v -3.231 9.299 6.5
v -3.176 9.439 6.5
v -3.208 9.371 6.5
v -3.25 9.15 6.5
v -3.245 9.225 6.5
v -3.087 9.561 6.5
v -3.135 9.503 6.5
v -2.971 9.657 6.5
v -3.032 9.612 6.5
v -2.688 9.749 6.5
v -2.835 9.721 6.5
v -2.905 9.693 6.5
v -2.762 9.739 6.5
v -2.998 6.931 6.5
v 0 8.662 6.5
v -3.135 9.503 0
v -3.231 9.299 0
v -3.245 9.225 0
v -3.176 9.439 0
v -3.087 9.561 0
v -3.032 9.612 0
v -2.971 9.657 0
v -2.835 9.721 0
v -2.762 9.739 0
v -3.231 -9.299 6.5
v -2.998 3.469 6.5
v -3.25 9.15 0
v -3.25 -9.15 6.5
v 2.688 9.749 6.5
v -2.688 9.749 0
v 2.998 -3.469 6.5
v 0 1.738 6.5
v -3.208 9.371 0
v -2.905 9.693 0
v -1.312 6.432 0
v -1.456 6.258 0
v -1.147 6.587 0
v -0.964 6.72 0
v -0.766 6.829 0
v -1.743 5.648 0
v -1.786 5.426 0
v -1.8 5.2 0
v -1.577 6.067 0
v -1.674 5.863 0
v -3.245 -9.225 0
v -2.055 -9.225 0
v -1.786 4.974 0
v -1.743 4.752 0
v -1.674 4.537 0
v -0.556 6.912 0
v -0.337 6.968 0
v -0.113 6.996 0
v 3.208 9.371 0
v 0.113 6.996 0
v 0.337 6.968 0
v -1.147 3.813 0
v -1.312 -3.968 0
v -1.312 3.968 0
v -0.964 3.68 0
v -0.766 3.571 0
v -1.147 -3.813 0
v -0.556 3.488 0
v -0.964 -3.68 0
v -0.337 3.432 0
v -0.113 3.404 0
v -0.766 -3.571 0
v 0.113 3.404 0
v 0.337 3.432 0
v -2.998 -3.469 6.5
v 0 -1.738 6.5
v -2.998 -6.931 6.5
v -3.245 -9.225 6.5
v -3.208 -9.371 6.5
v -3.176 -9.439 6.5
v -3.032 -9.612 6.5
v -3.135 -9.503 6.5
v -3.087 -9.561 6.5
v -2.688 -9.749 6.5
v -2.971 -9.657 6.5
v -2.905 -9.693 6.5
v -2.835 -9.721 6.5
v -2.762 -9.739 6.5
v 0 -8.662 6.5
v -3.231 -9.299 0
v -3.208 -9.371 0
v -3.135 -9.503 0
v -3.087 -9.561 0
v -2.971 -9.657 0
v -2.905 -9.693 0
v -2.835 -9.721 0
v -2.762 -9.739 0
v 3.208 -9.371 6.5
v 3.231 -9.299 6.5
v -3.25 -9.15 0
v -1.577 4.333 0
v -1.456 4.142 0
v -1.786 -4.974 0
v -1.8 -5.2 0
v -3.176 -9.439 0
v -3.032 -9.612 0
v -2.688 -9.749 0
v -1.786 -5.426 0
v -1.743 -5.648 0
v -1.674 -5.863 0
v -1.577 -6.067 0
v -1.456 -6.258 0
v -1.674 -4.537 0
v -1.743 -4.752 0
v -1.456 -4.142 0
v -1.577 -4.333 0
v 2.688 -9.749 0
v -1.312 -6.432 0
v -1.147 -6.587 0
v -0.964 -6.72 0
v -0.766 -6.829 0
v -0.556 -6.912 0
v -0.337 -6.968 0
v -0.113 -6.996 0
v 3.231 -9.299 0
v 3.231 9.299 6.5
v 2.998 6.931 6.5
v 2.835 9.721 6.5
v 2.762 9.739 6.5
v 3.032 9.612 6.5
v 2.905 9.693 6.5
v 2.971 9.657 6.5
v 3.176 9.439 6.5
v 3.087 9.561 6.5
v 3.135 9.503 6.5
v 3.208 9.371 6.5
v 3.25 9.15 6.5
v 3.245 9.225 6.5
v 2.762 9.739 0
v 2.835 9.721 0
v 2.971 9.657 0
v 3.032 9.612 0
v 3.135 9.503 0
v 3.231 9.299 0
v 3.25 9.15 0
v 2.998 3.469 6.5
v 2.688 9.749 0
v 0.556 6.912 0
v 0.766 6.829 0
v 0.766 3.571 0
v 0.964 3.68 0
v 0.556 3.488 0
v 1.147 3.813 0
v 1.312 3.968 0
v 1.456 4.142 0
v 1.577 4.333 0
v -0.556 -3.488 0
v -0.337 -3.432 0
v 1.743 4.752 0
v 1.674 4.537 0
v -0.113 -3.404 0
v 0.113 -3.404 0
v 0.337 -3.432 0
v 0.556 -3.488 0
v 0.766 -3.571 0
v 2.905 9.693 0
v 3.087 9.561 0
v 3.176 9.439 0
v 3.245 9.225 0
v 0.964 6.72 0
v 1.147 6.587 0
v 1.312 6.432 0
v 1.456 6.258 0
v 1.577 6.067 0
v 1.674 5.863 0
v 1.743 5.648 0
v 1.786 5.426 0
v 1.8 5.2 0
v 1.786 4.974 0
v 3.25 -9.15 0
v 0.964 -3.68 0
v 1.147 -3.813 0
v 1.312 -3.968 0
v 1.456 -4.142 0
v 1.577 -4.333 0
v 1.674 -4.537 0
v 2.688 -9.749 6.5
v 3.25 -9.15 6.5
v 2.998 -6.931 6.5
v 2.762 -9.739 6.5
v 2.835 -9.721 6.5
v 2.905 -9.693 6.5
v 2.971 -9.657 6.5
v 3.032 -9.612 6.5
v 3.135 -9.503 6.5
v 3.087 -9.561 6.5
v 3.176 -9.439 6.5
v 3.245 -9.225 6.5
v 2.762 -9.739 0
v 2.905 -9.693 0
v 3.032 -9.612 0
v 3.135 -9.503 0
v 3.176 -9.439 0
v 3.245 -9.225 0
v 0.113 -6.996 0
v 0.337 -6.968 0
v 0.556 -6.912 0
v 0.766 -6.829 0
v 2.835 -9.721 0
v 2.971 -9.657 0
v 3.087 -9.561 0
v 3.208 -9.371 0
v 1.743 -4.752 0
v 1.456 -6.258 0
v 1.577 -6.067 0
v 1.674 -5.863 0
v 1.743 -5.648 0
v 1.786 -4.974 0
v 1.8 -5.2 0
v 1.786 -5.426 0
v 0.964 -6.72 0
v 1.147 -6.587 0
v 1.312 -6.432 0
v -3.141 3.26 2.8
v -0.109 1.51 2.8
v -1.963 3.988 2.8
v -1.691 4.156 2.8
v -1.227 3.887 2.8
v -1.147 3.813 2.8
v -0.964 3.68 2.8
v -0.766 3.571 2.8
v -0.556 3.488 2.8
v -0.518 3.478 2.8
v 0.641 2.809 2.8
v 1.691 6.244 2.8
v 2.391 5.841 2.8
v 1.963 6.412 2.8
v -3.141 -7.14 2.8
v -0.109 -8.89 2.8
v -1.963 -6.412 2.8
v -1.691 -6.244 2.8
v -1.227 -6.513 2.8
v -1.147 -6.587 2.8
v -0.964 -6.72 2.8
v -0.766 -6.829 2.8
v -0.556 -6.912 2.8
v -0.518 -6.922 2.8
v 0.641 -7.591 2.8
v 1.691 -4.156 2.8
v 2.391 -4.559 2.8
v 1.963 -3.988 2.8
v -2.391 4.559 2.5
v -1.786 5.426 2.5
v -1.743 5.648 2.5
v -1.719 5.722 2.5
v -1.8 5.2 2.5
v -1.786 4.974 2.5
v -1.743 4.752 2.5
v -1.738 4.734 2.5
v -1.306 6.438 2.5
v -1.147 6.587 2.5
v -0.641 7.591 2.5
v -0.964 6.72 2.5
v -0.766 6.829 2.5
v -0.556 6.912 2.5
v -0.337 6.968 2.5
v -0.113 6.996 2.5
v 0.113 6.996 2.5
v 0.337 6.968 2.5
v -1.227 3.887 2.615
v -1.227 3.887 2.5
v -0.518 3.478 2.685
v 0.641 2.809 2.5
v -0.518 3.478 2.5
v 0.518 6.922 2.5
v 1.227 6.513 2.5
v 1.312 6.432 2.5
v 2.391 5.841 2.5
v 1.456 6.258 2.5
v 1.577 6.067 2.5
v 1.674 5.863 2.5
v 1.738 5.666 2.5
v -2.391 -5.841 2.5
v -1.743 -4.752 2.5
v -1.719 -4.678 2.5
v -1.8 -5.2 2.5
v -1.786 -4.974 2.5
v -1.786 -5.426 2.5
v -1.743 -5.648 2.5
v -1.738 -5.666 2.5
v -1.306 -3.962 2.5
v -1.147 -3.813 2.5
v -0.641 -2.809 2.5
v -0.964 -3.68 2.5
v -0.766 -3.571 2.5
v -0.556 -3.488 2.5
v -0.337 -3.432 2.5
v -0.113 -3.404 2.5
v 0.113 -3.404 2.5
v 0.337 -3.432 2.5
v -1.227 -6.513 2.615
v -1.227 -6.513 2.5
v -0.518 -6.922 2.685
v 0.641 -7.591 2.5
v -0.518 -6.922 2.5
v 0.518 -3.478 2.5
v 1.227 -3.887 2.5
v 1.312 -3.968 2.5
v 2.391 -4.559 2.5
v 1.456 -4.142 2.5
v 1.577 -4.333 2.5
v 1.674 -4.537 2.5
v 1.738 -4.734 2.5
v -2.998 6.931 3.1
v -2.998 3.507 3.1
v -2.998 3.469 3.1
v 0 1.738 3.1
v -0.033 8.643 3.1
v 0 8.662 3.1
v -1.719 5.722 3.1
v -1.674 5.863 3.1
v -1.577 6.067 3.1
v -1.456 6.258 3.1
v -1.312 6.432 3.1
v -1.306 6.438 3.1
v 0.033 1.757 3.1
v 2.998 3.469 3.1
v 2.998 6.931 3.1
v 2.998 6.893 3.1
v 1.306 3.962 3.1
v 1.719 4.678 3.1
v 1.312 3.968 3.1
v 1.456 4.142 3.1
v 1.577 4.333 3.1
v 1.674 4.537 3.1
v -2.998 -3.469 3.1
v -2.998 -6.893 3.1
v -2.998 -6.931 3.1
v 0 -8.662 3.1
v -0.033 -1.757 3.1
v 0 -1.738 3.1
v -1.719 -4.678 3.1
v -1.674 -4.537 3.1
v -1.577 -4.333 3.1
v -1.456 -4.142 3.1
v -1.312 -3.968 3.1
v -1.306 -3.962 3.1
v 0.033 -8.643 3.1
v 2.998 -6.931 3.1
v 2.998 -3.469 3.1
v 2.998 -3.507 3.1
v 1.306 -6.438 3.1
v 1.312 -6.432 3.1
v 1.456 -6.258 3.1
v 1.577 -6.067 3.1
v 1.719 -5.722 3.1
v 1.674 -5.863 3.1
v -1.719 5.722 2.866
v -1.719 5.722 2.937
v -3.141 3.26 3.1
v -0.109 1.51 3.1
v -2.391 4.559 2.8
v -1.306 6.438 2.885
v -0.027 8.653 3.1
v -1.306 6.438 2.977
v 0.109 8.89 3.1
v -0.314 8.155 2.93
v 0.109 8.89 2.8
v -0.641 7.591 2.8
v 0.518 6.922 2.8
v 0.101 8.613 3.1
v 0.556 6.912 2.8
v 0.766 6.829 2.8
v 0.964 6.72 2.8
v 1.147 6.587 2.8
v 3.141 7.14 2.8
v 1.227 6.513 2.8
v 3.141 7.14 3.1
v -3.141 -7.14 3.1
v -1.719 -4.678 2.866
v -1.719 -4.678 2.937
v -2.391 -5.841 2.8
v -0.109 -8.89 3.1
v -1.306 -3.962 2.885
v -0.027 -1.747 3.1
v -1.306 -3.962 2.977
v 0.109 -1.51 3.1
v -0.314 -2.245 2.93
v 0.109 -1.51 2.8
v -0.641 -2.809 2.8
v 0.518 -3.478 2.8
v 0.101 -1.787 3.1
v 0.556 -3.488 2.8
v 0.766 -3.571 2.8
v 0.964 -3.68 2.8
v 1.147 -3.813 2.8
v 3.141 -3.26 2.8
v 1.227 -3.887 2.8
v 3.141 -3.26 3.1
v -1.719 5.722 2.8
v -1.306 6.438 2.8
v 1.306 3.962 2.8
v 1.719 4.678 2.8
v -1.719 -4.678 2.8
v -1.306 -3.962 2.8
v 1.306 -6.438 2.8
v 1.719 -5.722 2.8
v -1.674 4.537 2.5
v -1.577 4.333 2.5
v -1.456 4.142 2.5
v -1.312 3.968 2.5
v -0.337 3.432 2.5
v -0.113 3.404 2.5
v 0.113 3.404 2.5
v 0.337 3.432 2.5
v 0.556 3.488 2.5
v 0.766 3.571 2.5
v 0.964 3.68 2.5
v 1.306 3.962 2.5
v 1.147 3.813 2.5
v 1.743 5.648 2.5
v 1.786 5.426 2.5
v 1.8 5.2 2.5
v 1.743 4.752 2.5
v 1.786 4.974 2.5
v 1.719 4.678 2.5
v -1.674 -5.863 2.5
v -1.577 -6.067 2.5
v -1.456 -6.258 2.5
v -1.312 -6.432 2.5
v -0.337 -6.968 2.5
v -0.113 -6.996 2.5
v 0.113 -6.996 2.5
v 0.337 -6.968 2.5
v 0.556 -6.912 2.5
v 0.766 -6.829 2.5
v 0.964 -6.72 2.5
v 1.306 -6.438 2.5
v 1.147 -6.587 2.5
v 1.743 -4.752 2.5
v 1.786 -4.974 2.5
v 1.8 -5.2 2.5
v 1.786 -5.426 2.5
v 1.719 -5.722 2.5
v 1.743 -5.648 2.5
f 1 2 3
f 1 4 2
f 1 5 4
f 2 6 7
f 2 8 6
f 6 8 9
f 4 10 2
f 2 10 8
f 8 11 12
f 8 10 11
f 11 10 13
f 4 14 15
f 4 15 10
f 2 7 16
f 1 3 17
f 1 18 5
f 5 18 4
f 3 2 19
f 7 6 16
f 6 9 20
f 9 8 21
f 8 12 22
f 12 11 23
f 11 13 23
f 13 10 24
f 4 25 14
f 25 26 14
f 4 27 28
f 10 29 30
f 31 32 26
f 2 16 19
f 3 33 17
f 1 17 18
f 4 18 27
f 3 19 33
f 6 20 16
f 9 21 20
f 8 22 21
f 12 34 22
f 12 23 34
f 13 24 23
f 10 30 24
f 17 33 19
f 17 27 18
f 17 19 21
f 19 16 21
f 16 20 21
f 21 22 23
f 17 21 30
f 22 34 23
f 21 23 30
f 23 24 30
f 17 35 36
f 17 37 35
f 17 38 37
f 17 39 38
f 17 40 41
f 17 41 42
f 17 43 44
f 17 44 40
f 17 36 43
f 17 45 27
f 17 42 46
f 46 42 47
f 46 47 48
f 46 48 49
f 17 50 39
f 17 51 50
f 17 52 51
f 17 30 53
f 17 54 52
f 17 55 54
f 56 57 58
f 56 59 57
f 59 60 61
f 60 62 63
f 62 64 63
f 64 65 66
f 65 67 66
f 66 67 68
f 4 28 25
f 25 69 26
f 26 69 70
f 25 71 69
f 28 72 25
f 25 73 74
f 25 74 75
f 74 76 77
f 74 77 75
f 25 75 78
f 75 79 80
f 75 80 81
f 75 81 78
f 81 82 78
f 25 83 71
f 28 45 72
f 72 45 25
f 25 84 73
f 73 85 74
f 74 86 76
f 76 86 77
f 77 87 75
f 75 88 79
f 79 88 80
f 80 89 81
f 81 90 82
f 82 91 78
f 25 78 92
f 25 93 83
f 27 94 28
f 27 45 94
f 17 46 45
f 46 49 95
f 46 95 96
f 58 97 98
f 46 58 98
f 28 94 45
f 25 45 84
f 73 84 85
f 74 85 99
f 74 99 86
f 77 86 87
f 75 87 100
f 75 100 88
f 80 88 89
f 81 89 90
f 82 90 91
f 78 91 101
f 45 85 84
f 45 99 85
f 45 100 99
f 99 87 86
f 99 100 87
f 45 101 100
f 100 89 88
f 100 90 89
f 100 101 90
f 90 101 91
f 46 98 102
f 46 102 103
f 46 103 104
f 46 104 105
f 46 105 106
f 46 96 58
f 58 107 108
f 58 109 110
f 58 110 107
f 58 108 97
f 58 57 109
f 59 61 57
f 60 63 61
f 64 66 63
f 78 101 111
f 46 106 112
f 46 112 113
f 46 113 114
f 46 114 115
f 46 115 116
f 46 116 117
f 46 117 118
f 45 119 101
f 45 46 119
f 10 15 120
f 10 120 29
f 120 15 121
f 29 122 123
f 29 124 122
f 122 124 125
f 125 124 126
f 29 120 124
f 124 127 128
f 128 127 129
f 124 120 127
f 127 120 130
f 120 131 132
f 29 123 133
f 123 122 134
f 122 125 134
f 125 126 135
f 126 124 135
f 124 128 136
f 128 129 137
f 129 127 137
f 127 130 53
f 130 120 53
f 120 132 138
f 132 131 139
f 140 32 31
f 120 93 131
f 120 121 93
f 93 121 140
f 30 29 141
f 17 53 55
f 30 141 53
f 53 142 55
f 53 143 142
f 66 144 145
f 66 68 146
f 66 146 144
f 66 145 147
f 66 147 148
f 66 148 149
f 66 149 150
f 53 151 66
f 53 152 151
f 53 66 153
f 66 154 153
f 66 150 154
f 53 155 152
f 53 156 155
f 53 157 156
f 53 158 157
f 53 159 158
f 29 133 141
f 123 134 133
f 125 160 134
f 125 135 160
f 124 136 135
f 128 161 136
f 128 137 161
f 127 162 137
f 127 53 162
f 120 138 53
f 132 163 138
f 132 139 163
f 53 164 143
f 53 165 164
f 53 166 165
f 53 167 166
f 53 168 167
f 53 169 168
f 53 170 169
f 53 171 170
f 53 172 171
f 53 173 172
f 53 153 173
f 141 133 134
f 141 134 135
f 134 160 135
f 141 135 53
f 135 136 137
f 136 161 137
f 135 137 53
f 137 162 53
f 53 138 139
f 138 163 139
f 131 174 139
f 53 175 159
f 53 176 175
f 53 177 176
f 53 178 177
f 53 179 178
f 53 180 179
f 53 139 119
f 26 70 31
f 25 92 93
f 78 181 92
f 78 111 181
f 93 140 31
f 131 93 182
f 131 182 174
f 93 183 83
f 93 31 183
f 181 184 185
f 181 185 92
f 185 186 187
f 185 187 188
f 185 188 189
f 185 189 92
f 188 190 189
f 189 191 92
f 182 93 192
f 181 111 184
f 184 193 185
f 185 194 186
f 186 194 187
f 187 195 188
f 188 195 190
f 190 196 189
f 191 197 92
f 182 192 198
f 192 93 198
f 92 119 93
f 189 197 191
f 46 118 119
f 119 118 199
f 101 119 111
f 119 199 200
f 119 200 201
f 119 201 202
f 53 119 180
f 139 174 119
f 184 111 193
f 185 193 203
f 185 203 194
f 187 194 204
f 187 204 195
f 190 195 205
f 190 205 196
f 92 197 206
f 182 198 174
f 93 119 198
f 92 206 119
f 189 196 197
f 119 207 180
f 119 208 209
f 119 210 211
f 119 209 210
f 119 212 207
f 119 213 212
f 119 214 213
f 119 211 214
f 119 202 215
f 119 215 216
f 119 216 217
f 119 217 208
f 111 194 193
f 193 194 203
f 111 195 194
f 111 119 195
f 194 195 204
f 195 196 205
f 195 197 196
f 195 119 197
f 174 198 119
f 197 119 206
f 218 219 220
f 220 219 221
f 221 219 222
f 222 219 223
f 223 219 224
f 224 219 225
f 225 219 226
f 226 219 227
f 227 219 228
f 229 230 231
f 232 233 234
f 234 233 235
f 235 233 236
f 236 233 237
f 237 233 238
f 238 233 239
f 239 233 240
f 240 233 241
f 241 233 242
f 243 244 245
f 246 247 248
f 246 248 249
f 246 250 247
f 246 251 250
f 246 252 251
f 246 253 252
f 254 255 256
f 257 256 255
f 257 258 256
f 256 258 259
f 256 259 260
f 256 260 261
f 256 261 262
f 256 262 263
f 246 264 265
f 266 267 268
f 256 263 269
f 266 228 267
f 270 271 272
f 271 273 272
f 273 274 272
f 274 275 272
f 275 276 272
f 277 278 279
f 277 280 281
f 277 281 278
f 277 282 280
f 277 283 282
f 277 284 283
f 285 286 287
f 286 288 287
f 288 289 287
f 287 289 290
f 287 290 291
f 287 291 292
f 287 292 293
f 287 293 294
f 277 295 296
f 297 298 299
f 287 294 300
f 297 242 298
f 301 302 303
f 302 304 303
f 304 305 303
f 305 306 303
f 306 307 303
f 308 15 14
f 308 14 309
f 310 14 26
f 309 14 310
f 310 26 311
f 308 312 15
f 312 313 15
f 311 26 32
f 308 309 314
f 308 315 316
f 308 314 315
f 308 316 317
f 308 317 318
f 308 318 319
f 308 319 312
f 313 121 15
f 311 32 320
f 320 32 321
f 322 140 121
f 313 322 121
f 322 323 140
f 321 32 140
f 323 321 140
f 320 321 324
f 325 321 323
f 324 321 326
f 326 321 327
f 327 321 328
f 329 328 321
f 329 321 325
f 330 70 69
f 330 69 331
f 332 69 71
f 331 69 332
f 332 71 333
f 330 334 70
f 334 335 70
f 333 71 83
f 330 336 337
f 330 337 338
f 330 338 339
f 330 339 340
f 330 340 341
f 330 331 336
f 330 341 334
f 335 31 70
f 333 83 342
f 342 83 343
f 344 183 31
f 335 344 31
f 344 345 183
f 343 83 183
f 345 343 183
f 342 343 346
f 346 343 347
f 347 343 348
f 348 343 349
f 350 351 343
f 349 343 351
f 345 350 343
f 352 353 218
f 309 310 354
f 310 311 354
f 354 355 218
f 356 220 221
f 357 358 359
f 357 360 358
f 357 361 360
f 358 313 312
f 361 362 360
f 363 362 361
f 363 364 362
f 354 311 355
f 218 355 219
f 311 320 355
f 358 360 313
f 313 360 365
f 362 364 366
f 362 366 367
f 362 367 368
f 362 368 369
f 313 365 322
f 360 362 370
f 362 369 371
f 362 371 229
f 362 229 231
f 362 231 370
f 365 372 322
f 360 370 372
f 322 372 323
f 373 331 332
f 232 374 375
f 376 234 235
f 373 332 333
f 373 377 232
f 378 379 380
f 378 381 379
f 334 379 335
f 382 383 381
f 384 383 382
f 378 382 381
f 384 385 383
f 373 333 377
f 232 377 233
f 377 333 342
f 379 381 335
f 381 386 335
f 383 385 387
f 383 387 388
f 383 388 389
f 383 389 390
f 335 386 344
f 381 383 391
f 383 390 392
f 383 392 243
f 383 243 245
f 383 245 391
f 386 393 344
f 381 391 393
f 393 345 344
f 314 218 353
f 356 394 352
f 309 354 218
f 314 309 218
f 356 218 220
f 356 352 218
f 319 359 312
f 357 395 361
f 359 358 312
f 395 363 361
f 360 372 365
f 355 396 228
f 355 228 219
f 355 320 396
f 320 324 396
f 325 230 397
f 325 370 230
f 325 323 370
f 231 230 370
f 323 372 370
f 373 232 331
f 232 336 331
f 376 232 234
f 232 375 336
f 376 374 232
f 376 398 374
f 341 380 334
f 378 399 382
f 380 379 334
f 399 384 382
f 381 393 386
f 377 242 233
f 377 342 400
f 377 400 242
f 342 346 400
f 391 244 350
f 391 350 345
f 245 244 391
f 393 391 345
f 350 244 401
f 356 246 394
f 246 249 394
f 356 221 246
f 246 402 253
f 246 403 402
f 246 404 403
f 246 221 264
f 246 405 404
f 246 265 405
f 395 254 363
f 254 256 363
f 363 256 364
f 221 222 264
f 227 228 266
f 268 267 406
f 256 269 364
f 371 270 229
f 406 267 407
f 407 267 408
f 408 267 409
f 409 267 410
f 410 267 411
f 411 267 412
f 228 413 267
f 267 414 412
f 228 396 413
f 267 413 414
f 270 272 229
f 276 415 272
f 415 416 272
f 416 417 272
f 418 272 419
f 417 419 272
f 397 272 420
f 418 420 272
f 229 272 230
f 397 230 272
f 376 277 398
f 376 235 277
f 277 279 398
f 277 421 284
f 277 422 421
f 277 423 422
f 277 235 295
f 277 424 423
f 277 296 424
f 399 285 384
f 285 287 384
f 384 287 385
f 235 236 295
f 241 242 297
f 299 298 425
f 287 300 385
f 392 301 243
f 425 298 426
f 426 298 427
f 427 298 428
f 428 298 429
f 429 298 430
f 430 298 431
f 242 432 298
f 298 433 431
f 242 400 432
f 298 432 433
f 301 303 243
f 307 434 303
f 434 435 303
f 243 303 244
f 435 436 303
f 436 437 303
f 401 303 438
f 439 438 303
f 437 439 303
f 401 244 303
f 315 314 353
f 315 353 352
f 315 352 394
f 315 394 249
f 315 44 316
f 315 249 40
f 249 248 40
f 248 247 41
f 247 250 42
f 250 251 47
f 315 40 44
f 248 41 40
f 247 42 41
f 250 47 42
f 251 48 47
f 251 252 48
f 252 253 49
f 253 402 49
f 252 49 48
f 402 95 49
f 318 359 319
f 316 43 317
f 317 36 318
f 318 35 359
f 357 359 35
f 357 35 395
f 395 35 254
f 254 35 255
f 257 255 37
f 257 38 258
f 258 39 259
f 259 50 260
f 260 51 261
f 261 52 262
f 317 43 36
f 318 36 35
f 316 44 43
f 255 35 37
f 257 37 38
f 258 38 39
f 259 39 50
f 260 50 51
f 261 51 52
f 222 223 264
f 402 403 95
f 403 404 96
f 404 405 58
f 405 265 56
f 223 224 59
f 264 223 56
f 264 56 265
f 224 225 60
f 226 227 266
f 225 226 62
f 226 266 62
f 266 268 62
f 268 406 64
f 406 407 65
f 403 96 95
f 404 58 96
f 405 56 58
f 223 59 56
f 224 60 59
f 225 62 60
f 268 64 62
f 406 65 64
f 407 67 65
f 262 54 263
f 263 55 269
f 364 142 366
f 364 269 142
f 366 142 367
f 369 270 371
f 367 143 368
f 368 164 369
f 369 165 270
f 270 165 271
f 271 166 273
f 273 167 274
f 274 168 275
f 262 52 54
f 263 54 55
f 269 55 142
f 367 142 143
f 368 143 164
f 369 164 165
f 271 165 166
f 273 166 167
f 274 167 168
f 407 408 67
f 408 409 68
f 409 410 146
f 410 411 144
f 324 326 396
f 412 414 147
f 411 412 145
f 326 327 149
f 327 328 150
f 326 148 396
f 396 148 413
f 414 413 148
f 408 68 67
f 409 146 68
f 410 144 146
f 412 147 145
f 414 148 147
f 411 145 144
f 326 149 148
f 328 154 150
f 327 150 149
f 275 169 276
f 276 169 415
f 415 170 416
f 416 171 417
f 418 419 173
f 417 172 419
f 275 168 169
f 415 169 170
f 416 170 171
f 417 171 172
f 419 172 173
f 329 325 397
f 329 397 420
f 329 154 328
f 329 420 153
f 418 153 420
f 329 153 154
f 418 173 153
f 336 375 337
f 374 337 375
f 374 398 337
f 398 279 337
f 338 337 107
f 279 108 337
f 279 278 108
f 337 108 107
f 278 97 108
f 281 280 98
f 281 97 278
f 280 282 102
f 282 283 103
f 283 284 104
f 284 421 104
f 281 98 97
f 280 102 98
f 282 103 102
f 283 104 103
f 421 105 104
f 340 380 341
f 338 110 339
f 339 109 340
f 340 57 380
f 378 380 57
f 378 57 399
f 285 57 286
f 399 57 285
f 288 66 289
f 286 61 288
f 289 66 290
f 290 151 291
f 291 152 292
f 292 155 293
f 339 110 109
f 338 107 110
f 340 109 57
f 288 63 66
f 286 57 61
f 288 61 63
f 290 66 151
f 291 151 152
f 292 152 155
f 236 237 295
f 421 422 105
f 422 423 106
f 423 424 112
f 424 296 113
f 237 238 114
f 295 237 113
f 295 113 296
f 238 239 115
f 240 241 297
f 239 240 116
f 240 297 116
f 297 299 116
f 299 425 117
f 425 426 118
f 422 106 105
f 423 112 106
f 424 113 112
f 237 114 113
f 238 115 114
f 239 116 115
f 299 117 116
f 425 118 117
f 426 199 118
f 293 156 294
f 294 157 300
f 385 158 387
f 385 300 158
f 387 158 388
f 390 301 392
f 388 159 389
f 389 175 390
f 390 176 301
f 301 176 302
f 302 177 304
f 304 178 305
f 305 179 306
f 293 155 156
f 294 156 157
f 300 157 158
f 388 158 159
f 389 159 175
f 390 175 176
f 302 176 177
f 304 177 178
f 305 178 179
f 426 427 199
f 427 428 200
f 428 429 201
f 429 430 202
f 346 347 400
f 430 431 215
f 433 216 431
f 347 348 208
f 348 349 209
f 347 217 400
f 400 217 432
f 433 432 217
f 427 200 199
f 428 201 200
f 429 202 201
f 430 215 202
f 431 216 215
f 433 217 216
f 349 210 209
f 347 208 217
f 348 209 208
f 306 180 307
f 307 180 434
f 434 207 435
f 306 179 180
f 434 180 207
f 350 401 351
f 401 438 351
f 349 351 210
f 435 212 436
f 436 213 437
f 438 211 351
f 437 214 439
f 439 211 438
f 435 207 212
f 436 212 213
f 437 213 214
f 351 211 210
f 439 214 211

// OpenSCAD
$fn = 50;

difference() {
	union() {
		translate(v = [24, 0, -4.5]) {
			rotate(a = [180, 0, 0]) {
				difference() {
					union() {
						translate(v = [-24, 0, -11.0]) {
							hull() {
								translate(v = [-2.65, 9.15, 0]) {
									cylinder(h = 6.5, r = 0.6);
								}
								translate(v = [2.65, 9.15, 0]) {
									cylinder(h = 6.5, r = 0.6);
								}
								translate(v = [-2.65, -9.15, 0]) {
									cylinder(h = 6.5, r = 0.6);
								}
								translate(v = [2.65, -9.15, 0]) {
									cylinder(h = 6.5, r = 0.6);
								}
							}
						}
					}
					union() {
						translate(v = [-24, -5.2, -7.6]) {
							rotate(a = [180, 0, 30]) {
								difference() {
									union() {
										translate(v = [-1.75, -3.25, -0.3]) {
											cube(size = [3.5, 6.5, 0.3]);
										}
										translate(v = [-1.75, -1.75, -0.6]) {
											cube(size = [3.5, 3.5, 0.3]);
										}
										translate(v = [-1.75, -3.25, 53.4]) {
											cube(size = [3.5, 6.5, 0.3]);
										}
										translate(v = [-1.75, -1.75, 53.699999999999996]) {
											cube(size = [3.5, 3.5, 0.3]);
										}
										linear_extrude(height = 103.4) {
											polygon(points = [[3.4619999999999997, 0.0], [1.7310000000000003, 2.9981799479017264], [-1.7309999999999992, 2.9981799479017264], [-3.4619999999999997, 4.2397272186481365e-16], [-1.7310000000000014, -2.998179947901726], [1.7309999999999977, -2.9981799479017277]]);
										}
										translate(v = [-1.75, -3.25, -0.3]) {
											cube(size = [3.5, 6.5, 0.3]);
										}
										translate(v = [-1.75, -1.75, -0.6]) {
											cube(size = [3.5, 3.5, 0.3]);
										}
										translate(v = [-1.75, -3.25, 103.4]) {
											cube(size = [3.5, 6.5, 0.3]);
										}
										translate(v = [-1.75, -1.75, 103.7]) {
											cube(size = [3.5, 3.5, 0.3]);
										}
										translate(v = [-1.75, -3.25, -0.3]) {
											cube(size = [3.5, 6.5, 0.3]);
										}
										translate(v = [-1.75, -1.75, -0.6]) {
											cube(size = [3.5, 3.5, 0.3]);
										}
										translate(v = [-1.75, -3.25, 153.4]) {
											cube(size = [3.5, 6.5, 0.3]);
										}
										translate(v = [-1.75, -1.75, 153.70000000000002]) {
											cube(size = [3.5, 3.5, 0.3]);
										}
									}
									union();
								}
							}
						}
						translate(v = [-24, 5.2, -7.6]) {
							rotate(a = [180, 0, 30]) {
								difference() {
									union() {
										translate(v = [-1.75, -3.25, -0.3]) {
											cube(size = [3.5, 6.5, 0.3]);
										}
										translate(v = [-1.75, -1.75, -0.6]) {
											cube(size = [3.5, 3.5, 0.3]);
										}
										translate(v = [-1.75, -3.25, 53.4]) {
											cube(size = [3.5, 6.5, 0.3]);
										}
										translate(v = [-1.75, -1.75, 53.699999999999996]) {
											cube(size = [3.5, 3.5, 0.3]);
										}
										linear_extrude(height = 103.4) {
											polygon(points = [[3.4619999999999997, 0.0], [1.7310000000000003, 2.9981799479017264], [-1.7309999999999992, 2.9981799479017264], [-3.4619999999999997, 4.2397272186481365e-16], [-1.7310000000000014, -2.998179947901726], [1.7309999999999977, -2.9981799479017277]]);
										}
										translate(v = [-1.75, -3.25, -0.3]) {
											cube(size = [3.5, 6.5, 0.3]);
										}
										translate(v = [-1.75, -1.75, -0.6]) {
											cube(size = [3.5, 3.5, 0.3]);
										}
										translate(v = [-1.75, -3.25, 103.4]) {
											cube(size = [3.5, 6.5, 0.3]);
										}
										translate(v = [-1.75, -1.75, 103.7]) {
											cube(size = [3.5, 3.5, 0.3]);
										}
										translate(v = [-1.75, -3.25, -0.3]) {
											cube(size = [3.5, 6.5, 0.3]);
										}
										translate(v = [-1.75, -1.75, -0.6]) {
											cube(size = [3.5, 3.5, 0.3]);
										}
										translate(v = [-1.75, -3.25, 153.4]) {
											cube(size = [3.5, 6.5, 0.3]);
										}
										translate(v = [-1.75, -1.75, 153.70000000000002]) {
											cube(size = [3.5, 3.5, 0.3]);
										}
									}
									union();
								}
							}
						}
						translate(v = [-24, -5.2, -12.0]) {
							cylinder(h = 8.5, r = 1.8);
						}
						translate(v = [-24, 5.2, -12.0]) {
							cylinder(h = 8.5, r = 1.8);
						}
					}
				}
			}
		}
	}
	union();
}
